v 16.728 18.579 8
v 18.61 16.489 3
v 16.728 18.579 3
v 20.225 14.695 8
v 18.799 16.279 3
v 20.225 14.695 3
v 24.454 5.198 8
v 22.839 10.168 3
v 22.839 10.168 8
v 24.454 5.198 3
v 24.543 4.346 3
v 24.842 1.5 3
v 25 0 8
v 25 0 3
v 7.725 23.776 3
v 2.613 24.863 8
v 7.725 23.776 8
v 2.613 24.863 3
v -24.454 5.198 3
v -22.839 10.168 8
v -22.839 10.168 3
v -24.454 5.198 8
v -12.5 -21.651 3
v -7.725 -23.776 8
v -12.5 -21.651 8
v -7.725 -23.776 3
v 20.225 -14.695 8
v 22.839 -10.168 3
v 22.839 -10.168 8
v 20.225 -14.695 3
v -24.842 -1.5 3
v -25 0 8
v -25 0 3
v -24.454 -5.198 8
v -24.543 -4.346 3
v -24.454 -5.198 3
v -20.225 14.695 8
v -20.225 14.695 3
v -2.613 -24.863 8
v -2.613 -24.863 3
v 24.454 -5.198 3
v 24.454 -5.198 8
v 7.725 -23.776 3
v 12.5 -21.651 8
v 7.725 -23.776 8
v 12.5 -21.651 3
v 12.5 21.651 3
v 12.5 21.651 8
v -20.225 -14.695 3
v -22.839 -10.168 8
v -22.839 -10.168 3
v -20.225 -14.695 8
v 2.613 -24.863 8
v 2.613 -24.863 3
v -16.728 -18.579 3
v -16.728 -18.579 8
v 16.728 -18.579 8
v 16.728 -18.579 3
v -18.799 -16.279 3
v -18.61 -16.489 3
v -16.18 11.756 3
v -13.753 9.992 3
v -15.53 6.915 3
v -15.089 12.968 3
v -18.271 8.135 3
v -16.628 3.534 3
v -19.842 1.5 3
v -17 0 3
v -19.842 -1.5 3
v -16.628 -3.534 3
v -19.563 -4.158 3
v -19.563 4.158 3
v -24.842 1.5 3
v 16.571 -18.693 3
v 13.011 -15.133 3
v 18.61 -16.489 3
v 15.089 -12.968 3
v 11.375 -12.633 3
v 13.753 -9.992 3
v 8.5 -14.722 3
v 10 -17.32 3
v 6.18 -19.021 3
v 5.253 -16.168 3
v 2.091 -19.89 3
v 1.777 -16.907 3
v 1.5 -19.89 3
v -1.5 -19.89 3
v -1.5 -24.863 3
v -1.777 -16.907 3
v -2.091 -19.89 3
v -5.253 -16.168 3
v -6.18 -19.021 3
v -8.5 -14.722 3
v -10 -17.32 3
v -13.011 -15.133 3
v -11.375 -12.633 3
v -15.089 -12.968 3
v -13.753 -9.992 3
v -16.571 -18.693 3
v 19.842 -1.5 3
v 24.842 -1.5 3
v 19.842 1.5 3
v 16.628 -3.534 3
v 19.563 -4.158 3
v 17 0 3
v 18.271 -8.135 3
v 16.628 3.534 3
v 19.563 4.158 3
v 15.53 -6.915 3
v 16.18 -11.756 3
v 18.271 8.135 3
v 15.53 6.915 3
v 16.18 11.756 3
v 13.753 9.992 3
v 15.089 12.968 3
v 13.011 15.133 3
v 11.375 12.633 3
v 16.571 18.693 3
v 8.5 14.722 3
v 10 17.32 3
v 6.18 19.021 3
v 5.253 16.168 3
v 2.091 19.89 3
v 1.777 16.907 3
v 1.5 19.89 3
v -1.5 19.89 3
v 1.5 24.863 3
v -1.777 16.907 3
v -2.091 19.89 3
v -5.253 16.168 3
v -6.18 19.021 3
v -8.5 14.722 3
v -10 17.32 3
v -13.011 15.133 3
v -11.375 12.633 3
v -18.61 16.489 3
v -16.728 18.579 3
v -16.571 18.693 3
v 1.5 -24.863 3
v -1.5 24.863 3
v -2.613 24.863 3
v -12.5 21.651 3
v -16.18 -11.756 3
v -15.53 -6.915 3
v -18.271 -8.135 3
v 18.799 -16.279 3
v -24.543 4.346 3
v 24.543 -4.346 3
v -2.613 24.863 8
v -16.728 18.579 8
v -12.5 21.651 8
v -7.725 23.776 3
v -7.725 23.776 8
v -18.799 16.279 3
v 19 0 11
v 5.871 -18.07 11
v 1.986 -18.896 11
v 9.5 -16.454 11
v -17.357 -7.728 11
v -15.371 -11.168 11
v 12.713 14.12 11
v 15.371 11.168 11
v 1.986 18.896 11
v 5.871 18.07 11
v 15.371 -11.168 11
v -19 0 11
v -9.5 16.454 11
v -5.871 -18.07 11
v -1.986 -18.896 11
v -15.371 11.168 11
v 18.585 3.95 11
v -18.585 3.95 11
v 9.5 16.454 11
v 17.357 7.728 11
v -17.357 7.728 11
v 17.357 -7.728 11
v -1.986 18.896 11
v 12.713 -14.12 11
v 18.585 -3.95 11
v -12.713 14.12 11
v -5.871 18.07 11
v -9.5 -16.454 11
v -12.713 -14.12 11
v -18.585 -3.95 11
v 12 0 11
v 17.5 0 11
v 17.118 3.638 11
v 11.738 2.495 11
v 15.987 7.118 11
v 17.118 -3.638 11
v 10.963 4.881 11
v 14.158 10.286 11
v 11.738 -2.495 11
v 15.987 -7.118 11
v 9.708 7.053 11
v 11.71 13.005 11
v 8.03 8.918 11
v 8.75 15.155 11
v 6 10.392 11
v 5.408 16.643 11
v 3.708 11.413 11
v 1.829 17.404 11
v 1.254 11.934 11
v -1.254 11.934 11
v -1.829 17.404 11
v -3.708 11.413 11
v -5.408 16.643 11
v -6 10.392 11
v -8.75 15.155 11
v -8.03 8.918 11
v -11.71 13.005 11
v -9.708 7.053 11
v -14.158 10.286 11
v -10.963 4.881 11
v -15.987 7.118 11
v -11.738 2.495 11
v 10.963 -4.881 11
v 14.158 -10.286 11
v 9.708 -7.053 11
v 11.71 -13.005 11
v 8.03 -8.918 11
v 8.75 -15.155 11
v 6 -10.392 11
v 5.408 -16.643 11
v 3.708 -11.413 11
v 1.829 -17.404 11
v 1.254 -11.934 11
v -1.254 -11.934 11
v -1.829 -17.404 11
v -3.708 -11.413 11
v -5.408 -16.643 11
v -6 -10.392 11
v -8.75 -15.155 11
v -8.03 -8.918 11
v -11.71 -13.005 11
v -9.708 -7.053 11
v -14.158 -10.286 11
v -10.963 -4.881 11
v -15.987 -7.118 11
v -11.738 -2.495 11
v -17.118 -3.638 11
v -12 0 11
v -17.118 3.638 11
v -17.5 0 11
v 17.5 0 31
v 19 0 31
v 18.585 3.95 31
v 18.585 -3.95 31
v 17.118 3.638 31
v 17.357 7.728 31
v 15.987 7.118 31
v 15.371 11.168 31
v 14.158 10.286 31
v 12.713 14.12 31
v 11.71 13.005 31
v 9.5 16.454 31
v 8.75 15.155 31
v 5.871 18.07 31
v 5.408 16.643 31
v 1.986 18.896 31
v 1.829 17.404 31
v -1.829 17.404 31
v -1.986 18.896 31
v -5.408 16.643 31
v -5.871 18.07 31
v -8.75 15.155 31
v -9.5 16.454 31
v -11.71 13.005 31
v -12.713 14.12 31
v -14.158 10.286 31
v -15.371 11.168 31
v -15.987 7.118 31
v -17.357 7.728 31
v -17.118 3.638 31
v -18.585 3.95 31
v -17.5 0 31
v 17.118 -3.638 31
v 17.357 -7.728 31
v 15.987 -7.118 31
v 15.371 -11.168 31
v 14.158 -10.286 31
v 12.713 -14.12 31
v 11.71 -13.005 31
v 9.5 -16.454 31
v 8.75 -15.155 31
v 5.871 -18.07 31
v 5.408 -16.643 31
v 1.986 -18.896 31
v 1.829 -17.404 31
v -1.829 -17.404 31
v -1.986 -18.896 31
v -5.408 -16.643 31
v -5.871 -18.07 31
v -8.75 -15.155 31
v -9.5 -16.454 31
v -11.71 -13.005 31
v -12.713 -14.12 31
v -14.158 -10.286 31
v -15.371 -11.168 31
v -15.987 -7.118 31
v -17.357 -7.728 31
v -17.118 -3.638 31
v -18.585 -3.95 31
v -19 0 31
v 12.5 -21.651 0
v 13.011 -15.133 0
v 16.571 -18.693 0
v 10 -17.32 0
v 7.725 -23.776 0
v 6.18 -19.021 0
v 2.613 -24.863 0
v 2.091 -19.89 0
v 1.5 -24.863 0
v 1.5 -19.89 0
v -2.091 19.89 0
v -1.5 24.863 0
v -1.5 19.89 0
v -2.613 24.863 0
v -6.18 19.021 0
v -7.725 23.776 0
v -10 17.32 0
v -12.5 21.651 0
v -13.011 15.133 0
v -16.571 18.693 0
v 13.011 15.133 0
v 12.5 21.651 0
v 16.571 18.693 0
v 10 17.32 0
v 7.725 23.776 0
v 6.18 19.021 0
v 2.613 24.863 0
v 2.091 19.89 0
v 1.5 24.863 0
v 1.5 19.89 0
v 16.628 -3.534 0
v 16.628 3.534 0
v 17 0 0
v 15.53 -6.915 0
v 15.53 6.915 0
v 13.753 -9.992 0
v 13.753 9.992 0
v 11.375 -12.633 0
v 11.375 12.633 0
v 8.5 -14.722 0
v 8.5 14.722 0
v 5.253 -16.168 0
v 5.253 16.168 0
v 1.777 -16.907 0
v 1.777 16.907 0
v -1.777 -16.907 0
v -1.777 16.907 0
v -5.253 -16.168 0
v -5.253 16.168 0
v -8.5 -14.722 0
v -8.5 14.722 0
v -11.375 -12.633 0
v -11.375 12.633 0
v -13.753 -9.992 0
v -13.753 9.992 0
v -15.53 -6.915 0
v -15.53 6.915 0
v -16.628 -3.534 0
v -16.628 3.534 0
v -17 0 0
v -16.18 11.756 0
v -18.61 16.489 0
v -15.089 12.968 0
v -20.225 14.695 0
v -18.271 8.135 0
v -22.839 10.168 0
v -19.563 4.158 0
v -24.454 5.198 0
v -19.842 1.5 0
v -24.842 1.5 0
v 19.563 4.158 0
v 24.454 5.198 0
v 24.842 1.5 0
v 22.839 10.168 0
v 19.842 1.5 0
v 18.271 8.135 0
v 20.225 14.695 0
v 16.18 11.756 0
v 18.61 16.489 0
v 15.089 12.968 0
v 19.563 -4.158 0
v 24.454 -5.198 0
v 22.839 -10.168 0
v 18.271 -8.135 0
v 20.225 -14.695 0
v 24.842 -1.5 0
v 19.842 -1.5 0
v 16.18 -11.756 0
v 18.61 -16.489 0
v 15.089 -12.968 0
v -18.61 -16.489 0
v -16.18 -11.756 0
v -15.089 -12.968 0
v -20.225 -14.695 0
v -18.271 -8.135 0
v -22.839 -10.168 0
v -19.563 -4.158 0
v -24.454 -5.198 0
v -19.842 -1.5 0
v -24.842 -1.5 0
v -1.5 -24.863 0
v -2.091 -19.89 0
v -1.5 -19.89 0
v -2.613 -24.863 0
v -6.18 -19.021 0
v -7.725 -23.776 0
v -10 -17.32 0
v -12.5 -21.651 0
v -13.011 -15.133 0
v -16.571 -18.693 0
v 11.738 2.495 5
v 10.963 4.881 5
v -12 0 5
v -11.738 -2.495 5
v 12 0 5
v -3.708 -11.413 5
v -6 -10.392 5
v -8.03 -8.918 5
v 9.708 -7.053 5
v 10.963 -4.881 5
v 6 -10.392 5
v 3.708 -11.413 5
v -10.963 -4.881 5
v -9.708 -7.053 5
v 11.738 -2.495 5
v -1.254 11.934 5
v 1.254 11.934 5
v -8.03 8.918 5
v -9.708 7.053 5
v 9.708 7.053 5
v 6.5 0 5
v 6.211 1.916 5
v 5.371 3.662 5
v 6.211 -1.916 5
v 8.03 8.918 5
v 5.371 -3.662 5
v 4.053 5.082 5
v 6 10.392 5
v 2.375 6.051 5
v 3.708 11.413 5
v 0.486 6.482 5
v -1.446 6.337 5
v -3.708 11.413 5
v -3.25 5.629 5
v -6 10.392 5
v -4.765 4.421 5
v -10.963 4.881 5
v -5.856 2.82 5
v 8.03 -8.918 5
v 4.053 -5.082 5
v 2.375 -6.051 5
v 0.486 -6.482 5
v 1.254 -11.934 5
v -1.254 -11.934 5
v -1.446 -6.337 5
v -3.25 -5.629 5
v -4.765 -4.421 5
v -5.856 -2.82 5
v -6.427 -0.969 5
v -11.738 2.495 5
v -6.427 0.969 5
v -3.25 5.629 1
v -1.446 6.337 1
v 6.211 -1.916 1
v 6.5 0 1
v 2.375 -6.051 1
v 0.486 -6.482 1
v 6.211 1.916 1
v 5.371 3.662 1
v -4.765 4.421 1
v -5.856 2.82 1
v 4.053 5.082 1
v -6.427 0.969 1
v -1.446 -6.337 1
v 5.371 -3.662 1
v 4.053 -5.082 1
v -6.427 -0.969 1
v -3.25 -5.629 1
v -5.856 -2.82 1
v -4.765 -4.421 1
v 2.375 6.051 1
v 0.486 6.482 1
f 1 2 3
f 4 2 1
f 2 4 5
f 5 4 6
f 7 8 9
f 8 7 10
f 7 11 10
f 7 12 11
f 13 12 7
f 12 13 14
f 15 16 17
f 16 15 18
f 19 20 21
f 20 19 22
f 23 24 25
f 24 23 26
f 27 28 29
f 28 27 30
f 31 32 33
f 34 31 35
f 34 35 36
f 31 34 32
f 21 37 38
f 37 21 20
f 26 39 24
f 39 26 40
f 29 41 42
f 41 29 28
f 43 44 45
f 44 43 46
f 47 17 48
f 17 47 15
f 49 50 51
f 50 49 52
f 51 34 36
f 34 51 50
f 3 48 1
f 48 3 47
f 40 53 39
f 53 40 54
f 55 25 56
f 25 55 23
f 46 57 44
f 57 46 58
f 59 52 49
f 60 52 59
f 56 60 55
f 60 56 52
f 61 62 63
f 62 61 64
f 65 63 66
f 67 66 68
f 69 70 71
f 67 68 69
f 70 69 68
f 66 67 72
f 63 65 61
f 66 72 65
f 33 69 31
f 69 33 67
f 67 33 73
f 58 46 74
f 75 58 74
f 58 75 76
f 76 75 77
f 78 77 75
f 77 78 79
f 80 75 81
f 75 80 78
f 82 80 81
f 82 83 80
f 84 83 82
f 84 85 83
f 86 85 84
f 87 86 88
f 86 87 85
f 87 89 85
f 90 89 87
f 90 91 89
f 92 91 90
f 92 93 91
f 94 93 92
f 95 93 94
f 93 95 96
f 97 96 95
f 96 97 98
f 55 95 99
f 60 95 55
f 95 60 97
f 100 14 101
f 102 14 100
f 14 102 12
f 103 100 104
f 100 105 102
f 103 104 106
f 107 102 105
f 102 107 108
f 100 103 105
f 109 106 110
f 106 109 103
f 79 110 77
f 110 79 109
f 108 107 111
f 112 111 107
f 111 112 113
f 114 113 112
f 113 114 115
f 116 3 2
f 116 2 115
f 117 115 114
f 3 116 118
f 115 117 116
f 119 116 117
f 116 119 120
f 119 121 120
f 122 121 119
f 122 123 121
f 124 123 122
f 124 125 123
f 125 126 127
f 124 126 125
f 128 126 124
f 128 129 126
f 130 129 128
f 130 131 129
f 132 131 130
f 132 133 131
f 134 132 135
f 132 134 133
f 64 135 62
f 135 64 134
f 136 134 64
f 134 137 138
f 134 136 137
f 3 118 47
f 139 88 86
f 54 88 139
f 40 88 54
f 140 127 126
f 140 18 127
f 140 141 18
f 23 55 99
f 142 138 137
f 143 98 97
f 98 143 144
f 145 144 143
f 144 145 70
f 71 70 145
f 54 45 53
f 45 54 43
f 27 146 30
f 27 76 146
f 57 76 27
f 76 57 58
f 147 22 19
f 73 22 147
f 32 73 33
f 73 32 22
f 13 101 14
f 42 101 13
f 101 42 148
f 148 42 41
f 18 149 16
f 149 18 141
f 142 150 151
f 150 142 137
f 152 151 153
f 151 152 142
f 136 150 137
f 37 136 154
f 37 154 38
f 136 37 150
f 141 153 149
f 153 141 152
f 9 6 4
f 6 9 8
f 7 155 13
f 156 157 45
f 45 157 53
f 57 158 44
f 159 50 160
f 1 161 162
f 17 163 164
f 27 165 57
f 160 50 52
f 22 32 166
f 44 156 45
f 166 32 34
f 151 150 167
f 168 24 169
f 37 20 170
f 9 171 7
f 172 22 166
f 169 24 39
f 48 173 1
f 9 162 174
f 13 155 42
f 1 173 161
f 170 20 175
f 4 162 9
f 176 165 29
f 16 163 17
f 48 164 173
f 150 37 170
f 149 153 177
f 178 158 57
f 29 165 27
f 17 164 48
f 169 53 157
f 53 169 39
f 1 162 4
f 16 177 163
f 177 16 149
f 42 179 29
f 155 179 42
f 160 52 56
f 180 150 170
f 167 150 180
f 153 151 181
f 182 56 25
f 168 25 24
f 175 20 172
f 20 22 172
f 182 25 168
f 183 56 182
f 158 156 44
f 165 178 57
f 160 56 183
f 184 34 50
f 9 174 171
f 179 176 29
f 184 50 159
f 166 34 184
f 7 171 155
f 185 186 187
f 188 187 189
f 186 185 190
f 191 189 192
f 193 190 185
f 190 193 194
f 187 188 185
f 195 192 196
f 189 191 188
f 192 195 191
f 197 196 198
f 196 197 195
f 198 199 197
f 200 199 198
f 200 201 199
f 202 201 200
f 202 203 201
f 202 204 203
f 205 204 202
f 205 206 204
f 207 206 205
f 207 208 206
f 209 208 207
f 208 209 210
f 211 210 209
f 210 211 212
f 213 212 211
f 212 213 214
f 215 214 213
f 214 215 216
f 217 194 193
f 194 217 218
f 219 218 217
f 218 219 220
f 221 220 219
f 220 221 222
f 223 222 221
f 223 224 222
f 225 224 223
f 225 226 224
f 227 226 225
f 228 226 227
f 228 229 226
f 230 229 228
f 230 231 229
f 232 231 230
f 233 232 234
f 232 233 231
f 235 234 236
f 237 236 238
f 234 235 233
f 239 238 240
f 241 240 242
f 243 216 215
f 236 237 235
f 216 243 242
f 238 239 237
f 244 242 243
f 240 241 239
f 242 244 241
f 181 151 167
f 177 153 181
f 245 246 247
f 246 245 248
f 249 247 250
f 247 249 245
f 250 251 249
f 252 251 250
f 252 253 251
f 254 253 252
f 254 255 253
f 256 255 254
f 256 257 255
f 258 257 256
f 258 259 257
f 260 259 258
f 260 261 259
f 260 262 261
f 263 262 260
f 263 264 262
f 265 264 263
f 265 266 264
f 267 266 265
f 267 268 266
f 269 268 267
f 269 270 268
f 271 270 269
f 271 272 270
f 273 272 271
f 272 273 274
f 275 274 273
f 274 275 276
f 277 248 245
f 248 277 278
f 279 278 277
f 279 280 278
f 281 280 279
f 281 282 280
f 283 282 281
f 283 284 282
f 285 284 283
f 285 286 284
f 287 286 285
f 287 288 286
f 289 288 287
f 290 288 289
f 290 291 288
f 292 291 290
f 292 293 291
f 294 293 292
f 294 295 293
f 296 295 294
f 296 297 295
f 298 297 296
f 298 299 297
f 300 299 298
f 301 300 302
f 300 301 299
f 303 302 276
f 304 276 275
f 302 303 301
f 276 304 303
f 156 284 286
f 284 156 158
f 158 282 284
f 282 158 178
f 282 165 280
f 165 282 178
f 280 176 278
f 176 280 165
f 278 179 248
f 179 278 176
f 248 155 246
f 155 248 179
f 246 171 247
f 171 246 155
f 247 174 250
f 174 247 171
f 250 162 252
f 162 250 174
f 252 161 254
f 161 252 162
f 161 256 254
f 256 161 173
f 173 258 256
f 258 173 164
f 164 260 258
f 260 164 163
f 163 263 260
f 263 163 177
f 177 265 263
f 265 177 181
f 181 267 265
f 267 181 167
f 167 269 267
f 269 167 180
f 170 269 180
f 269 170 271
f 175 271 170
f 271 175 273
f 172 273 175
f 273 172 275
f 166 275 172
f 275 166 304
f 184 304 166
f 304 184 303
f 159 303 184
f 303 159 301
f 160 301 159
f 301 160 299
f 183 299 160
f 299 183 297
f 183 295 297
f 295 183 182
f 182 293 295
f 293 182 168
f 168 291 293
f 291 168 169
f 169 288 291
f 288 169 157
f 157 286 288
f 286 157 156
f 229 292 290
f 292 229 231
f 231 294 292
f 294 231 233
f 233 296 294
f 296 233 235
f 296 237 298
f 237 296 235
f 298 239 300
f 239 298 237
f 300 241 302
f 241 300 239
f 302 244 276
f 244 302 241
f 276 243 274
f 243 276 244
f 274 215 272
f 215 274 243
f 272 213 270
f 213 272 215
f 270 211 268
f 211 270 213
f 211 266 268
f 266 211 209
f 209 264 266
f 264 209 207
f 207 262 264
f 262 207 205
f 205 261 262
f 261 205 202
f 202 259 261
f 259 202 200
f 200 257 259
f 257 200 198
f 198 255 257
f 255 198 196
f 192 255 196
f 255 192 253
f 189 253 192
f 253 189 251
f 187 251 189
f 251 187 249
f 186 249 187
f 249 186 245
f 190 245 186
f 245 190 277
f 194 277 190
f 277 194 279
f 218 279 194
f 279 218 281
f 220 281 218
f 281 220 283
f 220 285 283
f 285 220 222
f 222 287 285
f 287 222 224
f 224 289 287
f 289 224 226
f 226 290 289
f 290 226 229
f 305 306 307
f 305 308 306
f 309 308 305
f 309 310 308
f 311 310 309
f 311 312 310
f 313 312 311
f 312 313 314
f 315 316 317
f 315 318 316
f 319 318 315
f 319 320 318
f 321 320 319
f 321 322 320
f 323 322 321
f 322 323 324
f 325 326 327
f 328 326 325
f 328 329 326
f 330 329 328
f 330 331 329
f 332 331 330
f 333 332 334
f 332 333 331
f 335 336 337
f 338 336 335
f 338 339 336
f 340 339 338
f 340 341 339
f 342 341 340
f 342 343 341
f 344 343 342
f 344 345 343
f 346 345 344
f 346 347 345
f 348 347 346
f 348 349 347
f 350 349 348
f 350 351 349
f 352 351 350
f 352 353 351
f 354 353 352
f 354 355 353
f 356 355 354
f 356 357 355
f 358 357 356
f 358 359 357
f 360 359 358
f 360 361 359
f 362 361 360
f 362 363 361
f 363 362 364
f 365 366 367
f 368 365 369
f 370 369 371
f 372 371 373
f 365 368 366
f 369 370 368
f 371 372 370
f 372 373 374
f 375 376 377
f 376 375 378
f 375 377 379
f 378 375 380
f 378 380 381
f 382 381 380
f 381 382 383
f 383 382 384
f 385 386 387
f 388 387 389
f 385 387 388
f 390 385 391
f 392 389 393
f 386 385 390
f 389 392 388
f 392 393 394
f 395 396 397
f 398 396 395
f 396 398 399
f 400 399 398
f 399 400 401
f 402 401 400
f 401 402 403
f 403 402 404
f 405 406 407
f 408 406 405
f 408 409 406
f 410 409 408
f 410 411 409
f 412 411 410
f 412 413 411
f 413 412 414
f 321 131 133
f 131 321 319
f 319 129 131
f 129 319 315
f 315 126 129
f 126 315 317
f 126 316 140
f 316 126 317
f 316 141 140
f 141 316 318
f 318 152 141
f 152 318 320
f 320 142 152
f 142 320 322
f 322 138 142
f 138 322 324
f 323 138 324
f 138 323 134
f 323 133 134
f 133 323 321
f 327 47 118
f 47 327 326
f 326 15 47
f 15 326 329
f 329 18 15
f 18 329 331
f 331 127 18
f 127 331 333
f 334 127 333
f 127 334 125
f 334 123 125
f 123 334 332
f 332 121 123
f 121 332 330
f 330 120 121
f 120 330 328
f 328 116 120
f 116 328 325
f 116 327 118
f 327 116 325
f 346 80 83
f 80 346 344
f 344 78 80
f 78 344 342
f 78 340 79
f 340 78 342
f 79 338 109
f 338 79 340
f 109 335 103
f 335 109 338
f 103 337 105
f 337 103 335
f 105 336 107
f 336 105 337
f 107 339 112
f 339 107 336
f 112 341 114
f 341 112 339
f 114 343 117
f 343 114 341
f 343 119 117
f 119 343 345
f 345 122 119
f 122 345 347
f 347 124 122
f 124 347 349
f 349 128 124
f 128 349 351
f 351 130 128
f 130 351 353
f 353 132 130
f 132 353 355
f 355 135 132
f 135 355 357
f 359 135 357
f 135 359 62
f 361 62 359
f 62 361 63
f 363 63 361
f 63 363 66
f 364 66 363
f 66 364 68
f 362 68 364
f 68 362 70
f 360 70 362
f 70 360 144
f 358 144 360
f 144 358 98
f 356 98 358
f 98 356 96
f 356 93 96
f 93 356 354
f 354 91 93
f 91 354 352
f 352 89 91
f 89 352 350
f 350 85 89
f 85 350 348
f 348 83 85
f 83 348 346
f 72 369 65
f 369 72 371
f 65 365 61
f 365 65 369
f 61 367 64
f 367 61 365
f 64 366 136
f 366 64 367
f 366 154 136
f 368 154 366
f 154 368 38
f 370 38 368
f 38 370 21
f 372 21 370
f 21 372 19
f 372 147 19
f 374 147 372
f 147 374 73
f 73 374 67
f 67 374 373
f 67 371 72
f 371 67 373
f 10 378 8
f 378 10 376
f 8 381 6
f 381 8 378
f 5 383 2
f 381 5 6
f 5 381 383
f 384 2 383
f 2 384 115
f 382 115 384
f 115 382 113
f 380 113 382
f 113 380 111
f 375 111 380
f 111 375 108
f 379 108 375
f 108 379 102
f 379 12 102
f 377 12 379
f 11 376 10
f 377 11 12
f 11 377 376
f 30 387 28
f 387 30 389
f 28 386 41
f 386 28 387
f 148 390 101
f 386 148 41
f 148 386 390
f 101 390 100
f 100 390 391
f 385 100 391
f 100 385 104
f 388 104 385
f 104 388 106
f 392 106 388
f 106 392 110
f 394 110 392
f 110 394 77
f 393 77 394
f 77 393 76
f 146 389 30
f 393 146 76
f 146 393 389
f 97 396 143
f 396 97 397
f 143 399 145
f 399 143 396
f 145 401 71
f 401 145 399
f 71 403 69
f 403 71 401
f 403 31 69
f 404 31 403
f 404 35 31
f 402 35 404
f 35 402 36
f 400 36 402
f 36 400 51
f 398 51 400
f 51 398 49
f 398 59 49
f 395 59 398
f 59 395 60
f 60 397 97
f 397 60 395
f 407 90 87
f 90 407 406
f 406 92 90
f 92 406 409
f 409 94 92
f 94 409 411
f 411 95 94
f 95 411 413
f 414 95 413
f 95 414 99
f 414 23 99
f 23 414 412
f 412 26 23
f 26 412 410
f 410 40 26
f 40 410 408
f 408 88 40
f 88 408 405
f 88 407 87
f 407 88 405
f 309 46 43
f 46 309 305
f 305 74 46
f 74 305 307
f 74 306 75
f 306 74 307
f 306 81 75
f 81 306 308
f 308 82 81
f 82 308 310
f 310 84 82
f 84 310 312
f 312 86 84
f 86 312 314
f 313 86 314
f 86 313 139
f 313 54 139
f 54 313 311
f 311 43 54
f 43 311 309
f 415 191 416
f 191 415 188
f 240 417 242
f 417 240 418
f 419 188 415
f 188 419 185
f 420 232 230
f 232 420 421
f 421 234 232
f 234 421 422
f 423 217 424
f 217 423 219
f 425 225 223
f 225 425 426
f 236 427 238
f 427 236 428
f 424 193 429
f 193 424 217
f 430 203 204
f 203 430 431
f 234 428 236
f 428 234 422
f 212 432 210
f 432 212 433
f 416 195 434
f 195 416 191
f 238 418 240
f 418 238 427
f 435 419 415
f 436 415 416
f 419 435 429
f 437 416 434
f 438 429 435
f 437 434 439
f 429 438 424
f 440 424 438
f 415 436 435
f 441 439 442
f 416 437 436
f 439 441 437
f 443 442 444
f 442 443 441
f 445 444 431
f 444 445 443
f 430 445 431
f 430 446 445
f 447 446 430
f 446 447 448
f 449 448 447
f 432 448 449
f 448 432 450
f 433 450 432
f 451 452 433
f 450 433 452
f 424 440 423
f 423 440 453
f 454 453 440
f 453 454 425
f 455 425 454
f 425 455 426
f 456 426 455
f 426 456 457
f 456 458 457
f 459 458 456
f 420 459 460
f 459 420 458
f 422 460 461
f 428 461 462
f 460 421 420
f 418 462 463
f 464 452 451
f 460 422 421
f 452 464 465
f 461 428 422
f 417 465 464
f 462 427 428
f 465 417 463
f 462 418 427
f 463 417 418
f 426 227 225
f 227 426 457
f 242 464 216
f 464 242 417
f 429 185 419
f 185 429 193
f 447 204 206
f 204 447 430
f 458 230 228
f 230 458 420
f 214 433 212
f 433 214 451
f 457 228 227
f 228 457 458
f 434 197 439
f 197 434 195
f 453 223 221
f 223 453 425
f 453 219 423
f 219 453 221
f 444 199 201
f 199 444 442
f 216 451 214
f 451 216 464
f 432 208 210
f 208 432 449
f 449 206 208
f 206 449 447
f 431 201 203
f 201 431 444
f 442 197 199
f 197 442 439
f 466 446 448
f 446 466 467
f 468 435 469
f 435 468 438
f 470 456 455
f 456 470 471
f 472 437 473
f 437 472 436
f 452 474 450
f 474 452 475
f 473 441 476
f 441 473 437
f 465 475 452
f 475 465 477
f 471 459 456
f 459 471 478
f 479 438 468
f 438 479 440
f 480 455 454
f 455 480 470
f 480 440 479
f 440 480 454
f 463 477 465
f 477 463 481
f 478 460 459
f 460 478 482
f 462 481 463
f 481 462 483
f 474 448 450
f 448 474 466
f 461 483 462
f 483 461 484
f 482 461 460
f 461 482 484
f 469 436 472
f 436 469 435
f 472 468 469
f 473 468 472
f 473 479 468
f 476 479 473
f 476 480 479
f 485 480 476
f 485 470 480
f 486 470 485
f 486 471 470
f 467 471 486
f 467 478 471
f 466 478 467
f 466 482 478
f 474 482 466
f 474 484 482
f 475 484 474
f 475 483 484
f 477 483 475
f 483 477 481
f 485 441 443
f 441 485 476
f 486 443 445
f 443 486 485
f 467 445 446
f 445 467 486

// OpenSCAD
difference() {
    union(){
        //てっぺん部分
        linear_extrude(3){
            difference(){
                // 単純な輪
                difference(){
                    circle(25);
                    difference() {
                        circle(20);
                        circle(17);
                    }
                }
                // 溝
                for(i=[0:45:+360]){
                    rotate([0,0,i])
                    translate([19,-1.5,0]) {
                        square([6,3]);
                    }
                }
            }
        }
        // 円筒部分
        translate([0,0,3]) {
            color([0,0,0.5])
            linear_extrude(5){
                circle(25);
            }
            translate([0,0,5]){
                color([0.5,0.5,0])
                cylinder(3,25,19);
            }
            translate([0,0,8]){
                color([0.8,0,0])
                linear_extrude(20){
                    difference(){
                        circle(19);
                        circle(17.5);
                    }
                }
            }
        }
    }
    translate([0,0,1]){
        union(){
            // 磁石穴周りの余分なスペース
            translate([0,0,4]){
                linear_extrude(7){
                    circle(12);
                }
            }
            // 磁石(13mm)穴
            color([0,0.8,0])
            linear_extrude(10){
                circle(6.5);
            }
        }
    }    
}
